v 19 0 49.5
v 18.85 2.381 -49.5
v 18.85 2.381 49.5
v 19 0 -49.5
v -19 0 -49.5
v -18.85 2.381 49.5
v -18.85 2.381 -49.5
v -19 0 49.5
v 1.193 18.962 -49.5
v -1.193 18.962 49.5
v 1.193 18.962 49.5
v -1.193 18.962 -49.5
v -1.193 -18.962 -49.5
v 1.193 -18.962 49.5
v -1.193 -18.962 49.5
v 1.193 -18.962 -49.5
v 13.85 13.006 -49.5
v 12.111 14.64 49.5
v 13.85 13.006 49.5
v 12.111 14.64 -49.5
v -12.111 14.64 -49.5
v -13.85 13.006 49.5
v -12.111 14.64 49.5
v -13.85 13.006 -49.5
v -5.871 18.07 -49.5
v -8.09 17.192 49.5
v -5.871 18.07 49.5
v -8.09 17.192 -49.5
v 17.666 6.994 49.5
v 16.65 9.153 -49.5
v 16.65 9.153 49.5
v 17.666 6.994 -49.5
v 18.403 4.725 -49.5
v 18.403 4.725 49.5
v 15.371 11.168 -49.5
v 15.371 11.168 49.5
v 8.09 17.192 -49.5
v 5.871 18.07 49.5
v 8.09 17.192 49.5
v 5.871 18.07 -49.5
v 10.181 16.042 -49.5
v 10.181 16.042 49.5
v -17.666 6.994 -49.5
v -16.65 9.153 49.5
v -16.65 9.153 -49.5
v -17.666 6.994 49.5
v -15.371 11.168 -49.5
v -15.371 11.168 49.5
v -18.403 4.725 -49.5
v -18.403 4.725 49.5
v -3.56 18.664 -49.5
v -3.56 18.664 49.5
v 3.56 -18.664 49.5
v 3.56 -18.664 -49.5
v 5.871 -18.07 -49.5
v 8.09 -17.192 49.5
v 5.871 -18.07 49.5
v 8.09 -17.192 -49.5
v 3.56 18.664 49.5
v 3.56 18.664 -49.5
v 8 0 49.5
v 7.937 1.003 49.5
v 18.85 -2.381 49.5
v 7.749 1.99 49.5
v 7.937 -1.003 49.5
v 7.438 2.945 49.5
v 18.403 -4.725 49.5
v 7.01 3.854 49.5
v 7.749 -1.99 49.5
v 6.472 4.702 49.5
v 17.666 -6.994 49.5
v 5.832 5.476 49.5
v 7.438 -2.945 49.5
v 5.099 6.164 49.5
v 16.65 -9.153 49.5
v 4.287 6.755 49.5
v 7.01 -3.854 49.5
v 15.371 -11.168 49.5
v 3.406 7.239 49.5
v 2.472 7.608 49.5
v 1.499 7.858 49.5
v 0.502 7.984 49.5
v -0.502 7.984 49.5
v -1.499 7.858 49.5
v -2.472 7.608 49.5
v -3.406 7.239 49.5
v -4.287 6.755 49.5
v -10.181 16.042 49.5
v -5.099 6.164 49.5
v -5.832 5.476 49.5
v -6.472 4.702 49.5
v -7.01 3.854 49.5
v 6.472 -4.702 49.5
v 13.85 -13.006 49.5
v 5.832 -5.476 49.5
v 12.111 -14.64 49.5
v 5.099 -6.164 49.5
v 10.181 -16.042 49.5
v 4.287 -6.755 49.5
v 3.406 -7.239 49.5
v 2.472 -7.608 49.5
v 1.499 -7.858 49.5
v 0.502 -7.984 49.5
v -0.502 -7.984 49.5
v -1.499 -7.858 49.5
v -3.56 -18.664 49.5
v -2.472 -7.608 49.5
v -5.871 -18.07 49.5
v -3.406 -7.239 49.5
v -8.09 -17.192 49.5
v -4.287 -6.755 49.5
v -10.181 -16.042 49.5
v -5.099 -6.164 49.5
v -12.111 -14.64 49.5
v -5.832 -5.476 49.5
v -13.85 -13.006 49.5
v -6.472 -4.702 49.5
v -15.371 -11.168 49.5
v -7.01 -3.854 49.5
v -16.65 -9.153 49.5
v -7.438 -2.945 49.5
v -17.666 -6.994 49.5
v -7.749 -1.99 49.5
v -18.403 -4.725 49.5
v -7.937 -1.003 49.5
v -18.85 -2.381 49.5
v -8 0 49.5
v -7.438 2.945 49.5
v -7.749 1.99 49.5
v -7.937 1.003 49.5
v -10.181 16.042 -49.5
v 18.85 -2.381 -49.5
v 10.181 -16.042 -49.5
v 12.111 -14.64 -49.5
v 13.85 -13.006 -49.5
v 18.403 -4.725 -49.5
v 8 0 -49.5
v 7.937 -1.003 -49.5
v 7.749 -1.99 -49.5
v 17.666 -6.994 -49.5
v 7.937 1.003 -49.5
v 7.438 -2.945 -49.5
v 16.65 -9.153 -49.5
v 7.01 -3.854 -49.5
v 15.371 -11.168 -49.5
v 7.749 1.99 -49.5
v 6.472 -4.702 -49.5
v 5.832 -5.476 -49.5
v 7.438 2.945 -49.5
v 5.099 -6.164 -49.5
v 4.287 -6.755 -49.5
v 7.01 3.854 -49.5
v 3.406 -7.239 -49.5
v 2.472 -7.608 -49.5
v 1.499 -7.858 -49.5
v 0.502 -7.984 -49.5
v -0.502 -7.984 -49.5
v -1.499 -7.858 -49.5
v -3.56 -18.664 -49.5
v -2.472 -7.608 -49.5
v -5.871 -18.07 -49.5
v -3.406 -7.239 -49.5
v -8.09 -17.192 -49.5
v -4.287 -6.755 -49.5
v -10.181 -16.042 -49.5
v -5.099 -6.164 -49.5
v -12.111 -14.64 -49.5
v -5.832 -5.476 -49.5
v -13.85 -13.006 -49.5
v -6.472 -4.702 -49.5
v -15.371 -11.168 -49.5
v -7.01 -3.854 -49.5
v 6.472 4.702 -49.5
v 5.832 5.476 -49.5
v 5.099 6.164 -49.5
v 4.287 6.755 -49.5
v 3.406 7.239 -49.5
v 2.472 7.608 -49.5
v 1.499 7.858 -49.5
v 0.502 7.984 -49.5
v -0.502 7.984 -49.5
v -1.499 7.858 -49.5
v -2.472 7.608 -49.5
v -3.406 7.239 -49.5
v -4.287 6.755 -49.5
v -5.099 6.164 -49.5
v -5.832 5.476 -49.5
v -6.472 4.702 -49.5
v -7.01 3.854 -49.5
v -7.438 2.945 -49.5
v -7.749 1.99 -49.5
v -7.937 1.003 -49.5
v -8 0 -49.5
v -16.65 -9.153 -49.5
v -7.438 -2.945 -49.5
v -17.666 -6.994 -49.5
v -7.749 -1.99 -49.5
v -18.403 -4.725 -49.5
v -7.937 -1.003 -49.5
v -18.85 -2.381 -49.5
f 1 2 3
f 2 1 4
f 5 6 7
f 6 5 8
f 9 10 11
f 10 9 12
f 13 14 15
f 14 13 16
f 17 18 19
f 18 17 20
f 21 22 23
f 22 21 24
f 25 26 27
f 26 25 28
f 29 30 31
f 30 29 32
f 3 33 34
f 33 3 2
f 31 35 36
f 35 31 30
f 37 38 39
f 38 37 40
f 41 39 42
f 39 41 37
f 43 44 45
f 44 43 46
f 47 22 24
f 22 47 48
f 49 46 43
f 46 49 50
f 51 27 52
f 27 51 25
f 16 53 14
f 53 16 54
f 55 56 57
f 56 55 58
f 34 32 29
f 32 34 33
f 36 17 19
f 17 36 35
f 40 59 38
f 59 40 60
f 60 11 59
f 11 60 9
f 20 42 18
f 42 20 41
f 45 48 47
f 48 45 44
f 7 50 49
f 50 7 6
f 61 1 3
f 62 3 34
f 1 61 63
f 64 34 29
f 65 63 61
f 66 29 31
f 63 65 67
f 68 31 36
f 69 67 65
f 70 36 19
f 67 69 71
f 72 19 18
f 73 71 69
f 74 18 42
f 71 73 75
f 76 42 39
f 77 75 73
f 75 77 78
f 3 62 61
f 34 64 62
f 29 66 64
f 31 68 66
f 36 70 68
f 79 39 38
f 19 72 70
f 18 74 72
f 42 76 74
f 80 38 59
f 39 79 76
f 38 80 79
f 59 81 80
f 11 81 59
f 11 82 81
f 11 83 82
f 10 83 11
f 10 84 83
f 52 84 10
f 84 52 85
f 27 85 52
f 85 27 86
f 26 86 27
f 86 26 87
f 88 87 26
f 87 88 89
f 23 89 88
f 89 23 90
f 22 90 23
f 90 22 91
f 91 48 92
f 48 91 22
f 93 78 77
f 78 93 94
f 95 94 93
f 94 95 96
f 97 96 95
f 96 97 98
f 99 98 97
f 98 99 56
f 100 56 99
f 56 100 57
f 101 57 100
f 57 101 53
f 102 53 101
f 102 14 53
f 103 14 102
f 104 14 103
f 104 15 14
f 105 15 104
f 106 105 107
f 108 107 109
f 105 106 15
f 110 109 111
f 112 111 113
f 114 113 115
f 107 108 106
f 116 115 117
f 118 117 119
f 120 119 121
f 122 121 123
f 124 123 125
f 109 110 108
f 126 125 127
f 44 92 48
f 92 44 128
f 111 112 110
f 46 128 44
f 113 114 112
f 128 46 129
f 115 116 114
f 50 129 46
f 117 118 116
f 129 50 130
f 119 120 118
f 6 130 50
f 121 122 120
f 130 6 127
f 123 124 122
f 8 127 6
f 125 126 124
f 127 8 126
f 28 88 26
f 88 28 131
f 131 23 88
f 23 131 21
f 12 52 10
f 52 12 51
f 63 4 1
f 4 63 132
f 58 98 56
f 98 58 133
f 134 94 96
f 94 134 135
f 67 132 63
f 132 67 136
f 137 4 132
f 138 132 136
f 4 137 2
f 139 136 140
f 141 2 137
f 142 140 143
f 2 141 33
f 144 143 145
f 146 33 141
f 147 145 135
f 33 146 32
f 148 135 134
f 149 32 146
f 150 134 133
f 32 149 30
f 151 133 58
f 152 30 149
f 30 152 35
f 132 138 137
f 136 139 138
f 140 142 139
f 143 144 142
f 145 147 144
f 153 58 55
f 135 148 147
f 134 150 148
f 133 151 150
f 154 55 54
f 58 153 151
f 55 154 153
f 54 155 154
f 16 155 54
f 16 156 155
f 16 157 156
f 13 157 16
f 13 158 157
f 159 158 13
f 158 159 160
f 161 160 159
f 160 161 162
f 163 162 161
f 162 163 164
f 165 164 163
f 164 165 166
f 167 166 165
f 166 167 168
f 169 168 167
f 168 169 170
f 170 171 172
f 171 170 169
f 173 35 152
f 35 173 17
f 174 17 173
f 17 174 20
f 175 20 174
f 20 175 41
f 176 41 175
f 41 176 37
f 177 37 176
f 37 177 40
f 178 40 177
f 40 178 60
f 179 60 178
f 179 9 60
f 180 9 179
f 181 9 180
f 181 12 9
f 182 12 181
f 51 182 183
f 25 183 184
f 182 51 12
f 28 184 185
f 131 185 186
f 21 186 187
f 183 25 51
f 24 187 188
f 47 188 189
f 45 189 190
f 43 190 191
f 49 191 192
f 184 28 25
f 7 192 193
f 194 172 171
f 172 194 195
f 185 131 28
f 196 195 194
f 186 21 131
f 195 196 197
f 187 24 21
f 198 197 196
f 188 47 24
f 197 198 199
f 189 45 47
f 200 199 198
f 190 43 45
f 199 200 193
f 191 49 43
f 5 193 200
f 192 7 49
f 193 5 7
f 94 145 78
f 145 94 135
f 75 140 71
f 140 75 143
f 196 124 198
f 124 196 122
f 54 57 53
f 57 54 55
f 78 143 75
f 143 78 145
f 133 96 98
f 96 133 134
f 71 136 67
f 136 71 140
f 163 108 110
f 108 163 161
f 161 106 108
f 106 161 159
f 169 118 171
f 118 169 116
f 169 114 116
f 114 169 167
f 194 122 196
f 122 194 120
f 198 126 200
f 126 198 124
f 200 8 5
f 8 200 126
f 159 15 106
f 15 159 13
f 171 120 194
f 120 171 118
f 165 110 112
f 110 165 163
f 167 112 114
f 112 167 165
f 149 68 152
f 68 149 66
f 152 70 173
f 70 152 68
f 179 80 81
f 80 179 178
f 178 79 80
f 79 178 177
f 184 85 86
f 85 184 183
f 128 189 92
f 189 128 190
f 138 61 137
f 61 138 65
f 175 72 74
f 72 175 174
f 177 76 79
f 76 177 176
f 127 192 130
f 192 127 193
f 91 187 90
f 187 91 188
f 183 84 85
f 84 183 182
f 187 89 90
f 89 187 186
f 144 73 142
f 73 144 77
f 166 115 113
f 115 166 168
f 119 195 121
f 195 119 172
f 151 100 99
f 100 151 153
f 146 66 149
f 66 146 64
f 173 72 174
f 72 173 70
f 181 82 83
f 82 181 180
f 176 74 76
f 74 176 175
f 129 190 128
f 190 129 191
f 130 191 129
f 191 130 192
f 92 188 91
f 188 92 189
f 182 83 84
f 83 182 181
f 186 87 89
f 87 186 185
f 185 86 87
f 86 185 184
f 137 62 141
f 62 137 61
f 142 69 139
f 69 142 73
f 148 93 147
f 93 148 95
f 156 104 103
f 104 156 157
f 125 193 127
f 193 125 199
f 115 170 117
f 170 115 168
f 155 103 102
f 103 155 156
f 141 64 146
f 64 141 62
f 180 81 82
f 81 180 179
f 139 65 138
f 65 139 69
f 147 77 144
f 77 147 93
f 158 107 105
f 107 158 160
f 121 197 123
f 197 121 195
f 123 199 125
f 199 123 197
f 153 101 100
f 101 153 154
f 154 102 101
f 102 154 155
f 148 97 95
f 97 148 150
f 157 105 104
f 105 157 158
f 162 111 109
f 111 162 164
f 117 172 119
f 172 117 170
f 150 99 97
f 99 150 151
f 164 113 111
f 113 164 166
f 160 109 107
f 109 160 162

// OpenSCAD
$fn = 50;


difference() {
	union() {
		translate(v = [0, 0, -49.5000000000]) {
			cylinder(h = 99, r = 19.0000000000);
		}
	}
	union() {
		translate(v = [0, 0, -100.0000000000]) {
			cylinder(h = 200, r = 8);
		}
	}
}
